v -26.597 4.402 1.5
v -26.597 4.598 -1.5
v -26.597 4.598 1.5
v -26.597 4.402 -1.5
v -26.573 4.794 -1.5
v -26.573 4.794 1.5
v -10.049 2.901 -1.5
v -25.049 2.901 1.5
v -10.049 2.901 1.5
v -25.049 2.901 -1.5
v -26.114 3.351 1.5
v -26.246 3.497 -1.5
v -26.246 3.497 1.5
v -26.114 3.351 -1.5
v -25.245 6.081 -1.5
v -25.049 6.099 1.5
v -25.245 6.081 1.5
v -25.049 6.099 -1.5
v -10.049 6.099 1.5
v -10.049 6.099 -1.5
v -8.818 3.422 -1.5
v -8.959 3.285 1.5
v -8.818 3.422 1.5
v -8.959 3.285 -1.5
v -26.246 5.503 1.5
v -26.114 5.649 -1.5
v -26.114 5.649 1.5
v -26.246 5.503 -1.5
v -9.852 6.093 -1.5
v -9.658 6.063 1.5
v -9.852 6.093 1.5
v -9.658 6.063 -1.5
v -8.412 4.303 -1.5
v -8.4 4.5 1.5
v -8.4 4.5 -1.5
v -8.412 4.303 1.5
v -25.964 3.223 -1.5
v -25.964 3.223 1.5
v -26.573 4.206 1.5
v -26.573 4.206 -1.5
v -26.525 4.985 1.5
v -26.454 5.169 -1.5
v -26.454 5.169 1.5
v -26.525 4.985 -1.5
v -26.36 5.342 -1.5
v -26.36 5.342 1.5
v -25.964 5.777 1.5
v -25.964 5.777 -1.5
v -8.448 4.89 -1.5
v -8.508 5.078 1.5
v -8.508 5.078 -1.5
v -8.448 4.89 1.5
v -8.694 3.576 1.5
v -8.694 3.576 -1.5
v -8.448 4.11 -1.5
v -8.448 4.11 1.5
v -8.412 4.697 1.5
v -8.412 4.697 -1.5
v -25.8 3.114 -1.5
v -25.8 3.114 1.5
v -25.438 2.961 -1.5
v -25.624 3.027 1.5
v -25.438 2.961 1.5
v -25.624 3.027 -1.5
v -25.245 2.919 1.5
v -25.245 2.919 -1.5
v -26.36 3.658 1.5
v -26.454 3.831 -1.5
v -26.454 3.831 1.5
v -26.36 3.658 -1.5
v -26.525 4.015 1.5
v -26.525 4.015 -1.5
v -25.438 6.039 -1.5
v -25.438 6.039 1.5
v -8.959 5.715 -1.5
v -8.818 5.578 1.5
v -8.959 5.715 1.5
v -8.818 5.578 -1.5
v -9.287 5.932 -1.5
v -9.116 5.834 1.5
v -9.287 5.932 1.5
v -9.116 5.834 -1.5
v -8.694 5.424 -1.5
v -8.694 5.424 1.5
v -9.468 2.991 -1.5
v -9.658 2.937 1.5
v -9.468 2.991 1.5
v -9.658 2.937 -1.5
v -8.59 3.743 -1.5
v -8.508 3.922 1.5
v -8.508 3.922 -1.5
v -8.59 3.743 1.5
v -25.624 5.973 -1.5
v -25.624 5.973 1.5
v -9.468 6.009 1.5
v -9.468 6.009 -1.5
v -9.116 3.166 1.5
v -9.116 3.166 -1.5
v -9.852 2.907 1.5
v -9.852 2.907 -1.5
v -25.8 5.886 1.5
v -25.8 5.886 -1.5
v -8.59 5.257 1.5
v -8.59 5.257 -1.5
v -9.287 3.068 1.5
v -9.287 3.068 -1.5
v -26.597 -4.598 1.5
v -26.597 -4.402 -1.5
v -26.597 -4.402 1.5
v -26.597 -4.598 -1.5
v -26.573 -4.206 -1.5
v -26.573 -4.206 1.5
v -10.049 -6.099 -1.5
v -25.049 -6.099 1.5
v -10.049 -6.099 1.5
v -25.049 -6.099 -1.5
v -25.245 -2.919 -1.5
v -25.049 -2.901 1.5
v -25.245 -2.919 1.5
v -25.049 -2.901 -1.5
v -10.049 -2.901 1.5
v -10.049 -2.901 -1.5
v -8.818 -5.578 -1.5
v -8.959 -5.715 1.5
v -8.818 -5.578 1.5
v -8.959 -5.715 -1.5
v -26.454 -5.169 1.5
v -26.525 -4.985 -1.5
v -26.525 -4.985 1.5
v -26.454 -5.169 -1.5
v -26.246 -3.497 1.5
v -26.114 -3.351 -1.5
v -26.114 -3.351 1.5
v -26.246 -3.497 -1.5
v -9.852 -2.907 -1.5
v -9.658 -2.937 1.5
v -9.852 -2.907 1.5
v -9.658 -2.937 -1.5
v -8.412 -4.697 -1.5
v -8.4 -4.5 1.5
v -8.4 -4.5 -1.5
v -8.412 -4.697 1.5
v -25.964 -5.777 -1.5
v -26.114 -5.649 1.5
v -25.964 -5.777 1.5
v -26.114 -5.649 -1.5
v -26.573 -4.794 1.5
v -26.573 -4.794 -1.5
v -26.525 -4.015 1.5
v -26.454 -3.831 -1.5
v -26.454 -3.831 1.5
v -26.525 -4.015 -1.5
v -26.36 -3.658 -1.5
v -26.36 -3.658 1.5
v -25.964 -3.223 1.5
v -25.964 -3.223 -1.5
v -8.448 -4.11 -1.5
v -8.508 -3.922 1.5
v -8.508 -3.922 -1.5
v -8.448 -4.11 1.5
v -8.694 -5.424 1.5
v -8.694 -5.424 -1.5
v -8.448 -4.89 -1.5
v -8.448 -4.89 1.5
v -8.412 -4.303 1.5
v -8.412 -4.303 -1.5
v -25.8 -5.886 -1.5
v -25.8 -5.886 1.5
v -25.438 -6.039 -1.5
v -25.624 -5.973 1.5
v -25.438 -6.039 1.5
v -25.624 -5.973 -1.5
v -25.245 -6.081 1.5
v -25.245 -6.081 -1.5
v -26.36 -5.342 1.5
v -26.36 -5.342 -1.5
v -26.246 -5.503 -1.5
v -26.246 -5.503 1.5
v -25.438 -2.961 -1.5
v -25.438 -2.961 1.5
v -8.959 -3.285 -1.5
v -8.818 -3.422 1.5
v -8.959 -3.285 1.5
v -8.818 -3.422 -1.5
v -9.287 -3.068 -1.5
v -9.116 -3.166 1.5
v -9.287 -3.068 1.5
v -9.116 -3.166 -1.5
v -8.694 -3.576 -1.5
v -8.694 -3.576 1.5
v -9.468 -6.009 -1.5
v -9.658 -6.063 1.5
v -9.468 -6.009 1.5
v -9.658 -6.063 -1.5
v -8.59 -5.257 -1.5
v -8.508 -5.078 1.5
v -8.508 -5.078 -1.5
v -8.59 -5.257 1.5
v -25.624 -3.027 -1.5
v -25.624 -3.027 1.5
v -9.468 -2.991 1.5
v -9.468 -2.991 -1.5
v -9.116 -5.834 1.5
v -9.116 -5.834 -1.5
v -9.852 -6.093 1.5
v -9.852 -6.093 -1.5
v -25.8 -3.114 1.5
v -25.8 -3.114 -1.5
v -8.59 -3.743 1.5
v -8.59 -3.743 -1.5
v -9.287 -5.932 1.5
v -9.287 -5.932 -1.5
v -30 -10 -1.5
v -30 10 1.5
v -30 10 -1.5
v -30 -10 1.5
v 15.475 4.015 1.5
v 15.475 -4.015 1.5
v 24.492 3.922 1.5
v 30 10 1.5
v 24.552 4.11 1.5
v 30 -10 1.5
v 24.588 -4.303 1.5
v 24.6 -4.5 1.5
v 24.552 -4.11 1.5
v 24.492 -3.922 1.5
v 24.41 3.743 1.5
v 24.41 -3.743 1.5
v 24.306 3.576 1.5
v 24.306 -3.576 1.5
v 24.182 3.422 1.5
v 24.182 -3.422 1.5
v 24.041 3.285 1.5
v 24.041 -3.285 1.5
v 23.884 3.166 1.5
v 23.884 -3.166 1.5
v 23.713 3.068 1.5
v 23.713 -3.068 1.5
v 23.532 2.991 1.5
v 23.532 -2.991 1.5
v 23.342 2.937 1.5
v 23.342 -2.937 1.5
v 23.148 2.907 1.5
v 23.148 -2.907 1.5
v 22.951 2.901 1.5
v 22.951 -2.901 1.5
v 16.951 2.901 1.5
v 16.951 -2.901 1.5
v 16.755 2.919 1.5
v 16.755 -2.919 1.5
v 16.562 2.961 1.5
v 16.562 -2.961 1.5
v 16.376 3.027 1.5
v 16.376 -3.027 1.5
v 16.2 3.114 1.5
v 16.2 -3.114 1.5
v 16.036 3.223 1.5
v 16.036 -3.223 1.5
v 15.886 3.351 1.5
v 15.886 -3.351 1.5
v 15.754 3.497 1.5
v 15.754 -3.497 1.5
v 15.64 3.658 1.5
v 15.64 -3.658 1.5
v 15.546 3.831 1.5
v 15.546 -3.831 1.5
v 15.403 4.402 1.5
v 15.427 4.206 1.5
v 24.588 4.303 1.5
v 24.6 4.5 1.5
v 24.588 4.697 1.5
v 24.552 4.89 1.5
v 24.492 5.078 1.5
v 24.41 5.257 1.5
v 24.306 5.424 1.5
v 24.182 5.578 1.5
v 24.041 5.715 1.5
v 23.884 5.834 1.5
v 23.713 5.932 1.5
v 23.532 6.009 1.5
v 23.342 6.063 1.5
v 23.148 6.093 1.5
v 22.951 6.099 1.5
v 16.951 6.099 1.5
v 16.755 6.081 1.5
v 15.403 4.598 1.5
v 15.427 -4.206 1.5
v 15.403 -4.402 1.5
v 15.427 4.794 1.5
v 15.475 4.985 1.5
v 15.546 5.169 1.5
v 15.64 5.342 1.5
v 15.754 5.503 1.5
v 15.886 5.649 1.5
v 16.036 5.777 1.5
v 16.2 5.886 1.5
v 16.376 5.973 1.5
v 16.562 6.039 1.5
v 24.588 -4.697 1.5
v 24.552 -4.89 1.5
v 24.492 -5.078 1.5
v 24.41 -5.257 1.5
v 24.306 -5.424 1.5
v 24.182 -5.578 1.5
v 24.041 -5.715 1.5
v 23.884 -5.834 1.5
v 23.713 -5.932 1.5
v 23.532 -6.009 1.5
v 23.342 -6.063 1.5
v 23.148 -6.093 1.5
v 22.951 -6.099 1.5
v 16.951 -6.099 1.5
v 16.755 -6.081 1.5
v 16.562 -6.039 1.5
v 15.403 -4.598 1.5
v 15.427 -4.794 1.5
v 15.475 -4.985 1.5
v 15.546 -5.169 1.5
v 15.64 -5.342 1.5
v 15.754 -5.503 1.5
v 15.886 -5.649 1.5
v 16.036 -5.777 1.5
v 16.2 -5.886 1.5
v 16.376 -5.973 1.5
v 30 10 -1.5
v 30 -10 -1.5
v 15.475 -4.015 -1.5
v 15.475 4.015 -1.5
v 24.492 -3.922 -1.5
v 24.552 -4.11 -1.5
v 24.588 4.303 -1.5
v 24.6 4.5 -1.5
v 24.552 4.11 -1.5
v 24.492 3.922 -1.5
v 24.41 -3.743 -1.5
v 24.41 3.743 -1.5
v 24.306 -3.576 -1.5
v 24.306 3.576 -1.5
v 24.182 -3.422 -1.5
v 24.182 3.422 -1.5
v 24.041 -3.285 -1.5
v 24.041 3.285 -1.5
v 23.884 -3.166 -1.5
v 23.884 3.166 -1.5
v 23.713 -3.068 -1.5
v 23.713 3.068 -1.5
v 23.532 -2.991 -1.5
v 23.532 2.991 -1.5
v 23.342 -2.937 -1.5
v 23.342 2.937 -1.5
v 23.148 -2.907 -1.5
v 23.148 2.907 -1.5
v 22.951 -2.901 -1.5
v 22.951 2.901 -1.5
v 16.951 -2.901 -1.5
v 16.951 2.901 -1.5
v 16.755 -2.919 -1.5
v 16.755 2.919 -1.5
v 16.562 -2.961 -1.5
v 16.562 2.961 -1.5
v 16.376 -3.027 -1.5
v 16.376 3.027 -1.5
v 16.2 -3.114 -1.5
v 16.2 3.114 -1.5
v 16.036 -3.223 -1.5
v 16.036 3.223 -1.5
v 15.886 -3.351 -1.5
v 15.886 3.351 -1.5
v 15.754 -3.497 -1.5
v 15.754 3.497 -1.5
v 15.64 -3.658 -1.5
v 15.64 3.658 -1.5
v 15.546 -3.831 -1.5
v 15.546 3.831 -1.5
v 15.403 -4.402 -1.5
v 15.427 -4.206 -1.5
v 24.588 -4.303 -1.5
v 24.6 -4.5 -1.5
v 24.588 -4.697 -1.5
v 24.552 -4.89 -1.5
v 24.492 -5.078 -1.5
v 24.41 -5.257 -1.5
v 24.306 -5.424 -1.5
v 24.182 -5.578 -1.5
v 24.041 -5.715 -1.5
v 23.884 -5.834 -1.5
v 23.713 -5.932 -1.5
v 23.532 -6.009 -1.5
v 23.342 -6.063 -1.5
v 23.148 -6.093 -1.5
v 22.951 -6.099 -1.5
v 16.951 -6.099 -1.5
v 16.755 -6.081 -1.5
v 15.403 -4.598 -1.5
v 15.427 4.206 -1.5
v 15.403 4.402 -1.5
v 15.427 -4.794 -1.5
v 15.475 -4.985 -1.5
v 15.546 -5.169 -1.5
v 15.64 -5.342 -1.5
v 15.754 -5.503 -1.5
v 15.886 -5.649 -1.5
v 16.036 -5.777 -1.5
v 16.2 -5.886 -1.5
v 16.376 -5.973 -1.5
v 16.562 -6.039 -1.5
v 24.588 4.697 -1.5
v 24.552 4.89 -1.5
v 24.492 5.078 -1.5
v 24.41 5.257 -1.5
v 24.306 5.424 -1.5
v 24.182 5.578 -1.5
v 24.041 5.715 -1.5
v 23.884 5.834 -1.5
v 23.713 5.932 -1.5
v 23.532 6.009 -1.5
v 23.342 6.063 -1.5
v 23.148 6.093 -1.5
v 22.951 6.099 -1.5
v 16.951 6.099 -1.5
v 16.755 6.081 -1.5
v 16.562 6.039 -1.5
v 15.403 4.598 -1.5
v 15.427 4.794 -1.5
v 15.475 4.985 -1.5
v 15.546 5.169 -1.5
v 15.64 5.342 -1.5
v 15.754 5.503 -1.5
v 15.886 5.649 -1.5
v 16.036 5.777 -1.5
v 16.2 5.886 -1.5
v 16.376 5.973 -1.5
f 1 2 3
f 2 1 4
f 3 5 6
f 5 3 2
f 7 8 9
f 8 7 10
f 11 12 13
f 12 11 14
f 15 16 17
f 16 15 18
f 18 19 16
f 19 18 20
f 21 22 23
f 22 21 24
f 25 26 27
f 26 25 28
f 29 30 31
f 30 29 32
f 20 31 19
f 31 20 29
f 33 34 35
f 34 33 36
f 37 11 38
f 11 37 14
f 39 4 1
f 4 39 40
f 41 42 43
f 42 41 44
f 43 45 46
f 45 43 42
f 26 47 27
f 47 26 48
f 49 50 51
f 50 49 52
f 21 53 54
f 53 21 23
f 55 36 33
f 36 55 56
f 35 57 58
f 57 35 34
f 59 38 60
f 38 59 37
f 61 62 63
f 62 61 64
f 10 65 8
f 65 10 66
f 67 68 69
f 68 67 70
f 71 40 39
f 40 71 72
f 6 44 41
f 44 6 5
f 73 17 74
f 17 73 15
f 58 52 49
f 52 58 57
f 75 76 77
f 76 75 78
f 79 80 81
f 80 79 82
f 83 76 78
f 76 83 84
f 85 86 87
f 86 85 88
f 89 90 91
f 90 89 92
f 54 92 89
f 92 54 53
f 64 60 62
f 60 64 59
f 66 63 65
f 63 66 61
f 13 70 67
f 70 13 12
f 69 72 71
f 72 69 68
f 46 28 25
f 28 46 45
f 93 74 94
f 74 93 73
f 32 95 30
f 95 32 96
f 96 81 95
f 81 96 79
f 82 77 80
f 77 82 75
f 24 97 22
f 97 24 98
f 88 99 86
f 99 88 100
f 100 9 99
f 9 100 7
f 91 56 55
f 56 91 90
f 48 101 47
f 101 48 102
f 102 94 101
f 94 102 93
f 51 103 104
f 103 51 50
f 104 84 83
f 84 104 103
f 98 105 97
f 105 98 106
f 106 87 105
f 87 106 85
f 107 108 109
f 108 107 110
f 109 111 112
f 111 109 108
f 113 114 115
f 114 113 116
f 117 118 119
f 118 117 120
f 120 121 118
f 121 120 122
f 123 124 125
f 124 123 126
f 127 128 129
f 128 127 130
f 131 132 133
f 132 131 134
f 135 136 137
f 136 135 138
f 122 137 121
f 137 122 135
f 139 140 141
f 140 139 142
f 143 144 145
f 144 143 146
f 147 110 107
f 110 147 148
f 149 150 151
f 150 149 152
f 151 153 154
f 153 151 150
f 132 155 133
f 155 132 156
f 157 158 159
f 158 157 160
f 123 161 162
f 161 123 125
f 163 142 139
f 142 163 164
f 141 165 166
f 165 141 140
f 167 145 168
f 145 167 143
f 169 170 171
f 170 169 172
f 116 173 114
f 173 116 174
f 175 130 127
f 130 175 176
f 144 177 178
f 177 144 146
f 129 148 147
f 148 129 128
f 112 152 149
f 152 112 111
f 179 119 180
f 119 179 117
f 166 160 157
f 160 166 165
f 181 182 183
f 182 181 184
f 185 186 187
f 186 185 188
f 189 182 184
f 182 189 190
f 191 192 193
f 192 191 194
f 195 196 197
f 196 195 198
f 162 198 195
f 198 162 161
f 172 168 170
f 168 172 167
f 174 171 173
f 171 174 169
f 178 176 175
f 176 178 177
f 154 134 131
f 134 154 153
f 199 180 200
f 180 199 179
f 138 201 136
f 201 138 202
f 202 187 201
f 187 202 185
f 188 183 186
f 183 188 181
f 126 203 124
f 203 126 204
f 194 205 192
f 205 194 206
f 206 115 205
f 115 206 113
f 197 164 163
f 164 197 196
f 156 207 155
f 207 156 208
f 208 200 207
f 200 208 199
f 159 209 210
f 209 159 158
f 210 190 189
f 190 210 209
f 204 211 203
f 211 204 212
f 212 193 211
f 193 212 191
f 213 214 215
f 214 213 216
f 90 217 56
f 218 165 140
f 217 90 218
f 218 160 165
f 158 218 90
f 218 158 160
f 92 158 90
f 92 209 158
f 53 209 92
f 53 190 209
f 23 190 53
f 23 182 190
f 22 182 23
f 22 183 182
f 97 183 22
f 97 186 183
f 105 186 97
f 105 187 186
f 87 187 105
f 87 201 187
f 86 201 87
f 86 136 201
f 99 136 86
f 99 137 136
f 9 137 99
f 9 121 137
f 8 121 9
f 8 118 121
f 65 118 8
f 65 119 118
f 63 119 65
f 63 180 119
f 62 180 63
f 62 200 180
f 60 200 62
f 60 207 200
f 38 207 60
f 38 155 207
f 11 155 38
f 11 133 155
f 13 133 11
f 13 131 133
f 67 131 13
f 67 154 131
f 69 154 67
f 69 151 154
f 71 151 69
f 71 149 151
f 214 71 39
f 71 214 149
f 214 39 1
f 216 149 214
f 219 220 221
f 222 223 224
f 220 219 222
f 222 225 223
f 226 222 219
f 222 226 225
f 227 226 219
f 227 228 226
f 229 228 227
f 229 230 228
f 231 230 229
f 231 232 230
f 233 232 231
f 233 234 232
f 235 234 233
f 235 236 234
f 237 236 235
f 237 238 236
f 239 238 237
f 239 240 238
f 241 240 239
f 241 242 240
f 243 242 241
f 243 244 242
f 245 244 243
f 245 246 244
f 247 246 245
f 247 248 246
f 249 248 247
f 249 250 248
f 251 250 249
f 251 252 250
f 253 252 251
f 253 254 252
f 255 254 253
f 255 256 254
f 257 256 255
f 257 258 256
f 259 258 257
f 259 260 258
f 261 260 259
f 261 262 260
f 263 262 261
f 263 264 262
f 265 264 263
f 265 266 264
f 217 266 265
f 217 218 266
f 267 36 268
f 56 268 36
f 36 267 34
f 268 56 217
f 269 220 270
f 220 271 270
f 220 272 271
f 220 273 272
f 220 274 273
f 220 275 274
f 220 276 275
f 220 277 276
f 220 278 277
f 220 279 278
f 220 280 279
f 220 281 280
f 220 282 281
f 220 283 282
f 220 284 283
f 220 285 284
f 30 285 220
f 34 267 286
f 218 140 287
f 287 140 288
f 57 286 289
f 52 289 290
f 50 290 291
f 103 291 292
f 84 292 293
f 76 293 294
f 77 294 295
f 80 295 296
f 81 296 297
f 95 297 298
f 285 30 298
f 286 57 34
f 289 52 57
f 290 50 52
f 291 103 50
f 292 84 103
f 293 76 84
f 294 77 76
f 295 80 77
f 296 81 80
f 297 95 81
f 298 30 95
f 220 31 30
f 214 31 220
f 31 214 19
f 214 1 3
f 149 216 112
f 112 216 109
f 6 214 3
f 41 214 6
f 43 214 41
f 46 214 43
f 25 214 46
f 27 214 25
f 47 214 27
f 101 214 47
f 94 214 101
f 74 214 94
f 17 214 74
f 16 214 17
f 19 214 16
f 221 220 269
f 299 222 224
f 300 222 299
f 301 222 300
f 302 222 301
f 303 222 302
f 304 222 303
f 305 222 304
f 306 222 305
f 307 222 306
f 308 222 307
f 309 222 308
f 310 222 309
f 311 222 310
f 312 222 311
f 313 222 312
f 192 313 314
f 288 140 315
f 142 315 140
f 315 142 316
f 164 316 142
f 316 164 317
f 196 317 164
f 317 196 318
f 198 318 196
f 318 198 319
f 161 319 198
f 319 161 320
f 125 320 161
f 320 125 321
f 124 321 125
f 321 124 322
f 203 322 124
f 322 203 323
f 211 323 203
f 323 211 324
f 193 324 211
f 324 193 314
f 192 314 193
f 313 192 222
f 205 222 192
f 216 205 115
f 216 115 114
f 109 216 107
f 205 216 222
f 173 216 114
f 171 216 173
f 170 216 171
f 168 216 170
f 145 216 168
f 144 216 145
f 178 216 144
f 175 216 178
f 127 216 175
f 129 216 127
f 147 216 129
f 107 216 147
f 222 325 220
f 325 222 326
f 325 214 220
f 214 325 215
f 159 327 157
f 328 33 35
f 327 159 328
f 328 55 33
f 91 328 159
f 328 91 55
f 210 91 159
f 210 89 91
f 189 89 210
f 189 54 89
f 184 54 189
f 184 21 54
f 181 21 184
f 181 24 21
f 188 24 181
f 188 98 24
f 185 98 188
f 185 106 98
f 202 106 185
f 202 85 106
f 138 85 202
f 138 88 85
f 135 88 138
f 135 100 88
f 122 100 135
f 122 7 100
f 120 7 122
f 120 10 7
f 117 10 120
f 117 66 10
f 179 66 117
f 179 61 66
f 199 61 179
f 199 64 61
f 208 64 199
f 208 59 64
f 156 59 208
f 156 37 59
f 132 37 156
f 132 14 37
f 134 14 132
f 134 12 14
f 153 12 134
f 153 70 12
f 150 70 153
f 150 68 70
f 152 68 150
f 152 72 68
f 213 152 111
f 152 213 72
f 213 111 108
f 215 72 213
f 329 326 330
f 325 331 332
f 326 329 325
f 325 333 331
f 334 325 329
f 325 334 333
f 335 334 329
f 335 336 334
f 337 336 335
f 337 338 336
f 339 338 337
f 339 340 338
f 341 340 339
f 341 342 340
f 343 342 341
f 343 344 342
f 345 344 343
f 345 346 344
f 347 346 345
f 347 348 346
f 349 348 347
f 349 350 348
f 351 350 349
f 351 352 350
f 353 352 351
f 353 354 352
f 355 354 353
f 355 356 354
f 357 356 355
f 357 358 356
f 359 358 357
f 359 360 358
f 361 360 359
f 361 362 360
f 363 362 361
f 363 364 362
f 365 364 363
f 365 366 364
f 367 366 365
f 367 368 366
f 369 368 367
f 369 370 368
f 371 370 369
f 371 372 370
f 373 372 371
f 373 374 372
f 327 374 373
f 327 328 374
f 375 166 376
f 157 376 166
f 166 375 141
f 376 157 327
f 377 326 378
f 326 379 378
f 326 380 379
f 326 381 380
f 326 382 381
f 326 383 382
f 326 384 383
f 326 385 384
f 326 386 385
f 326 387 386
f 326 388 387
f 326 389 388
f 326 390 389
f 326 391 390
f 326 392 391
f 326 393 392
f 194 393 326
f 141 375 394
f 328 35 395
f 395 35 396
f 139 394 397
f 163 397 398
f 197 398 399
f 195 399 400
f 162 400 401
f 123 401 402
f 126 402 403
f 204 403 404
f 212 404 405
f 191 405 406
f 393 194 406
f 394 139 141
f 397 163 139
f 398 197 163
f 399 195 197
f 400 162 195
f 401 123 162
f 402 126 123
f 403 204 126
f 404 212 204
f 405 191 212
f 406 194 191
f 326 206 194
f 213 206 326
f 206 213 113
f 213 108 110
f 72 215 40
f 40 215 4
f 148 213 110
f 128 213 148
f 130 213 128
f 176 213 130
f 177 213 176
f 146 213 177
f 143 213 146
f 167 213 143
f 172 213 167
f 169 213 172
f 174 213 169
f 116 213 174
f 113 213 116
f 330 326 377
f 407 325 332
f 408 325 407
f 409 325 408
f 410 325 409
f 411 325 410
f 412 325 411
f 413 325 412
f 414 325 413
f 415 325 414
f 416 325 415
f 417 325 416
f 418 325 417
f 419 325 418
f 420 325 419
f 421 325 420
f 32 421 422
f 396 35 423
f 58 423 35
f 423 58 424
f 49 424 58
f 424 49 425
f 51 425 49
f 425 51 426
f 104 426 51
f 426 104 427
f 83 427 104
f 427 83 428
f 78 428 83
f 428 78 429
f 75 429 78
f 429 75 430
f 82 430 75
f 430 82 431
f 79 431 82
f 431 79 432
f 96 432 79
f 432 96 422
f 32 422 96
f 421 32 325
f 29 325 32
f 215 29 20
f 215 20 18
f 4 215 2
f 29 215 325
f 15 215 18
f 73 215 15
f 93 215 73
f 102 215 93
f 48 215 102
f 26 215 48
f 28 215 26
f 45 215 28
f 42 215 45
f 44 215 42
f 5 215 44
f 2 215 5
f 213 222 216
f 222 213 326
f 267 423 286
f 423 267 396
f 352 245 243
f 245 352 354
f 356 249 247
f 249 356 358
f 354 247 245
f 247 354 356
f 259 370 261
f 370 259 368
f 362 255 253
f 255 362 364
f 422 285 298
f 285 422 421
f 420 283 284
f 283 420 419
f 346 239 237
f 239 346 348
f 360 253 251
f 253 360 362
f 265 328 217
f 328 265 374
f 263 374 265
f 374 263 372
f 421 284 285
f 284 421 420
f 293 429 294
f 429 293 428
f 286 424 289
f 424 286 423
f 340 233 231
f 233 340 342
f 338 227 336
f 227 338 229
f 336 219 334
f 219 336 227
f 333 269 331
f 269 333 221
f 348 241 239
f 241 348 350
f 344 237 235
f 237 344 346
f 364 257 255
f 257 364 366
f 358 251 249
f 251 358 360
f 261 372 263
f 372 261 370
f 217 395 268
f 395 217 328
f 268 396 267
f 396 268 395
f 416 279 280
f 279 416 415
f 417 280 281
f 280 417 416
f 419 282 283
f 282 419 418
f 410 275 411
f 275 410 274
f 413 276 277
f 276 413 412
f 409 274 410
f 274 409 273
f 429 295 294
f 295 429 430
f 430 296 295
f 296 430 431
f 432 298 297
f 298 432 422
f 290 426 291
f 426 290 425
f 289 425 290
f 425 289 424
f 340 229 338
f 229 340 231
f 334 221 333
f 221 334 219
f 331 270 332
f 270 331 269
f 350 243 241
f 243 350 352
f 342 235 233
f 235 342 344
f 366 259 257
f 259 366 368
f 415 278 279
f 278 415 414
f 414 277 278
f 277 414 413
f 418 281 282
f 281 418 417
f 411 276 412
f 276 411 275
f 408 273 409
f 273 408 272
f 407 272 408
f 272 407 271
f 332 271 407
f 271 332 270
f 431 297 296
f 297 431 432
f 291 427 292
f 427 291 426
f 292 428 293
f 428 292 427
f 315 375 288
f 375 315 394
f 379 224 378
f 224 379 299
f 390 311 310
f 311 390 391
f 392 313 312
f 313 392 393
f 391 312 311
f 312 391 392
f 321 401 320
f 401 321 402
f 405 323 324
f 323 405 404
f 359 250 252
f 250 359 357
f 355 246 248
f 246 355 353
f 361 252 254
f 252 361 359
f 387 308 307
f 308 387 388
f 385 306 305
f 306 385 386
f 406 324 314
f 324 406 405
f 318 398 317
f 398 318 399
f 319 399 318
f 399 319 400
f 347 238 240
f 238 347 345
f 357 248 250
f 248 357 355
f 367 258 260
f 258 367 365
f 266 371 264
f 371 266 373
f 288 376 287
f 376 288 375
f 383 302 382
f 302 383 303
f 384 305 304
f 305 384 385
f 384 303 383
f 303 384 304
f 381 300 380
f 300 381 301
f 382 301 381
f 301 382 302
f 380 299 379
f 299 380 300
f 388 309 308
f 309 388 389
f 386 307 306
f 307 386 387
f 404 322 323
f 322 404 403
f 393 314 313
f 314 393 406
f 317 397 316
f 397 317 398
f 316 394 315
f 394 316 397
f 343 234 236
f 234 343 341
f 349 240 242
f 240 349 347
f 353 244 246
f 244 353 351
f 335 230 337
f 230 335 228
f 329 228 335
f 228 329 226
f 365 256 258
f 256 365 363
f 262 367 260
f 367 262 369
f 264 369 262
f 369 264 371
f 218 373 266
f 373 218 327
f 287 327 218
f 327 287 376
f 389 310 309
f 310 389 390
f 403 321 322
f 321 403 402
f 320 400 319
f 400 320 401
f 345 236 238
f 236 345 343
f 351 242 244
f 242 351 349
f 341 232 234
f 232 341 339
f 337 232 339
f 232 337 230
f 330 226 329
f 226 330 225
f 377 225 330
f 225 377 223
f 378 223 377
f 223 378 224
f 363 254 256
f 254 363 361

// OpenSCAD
$fs=0.2;
$fa=2;

difference()
{
    cube([60,20,3],center=true);
    
    translate([20,4.5,0]) 
    hull()
    { 
        translate([-3,0,0])cylinder(r=1.6,h=4,center=true);
        translate([3,0,0])cylinder(r=1.6,h=4,center=true);
    } 
    translate([20,-4.5,0])    hull()
    { 
        translate([-3,0,0])cylinder(r=1.6,h=4,center=true);
        translate([3,0,0])cylinder(r=1.6,h=4,center=true);
    } 
    
union()
    translate([-25,0,0]){
    
        translate([0,4.5,0]) hull()
        {
            cylinder(r=1.6,h=4,center=true); 
            translate([15,0,0])cylinder(r=1.6,h=4,center=true); 
        }       
        translate([0,-4.5,0]) hull()
        {
            cylinder(r=1.6,h=4,center=true); 
            translate([15,0,0])cylinder(r=1.6,h=4,center=true); 
        }       
     }
}
